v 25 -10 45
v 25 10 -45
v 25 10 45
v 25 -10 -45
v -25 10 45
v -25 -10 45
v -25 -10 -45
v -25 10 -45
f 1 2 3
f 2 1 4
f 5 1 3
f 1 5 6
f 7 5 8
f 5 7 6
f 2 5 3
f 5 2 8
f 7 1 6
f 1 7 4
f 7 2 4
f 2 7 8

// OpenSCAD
// Define the dimensions of the rectangular block
block_length = 50;  // Length of the block
block_width = 20;   // Width of the block
block_height = 15;  // Height of the block (increased to match original model)

// Function to create a rectangular block
module rectangular_block() {
    cube([block_length, block_width, block_height], center = true);
}

// Assemble the layers based on the original model
module assembly() {
    // Layer 1: Topmost block
    translate([0, 0, block_height * 2.5])
        rectangular_block();

    // Layer 2: Second block
    translate([0, 0, block_height * 1.5])
        rectangular_block();

    // Layer 3: Third block
    translate([0, 0, block_height * 0.5])
        rectangular_block();

    // Layer 4: Fourth block
    translate([0, 0, -block_height * 0.5])
        rectangular_block();

    // Layer 5: Fifth block
    translate([0, 0, -block_height * 1.5])
        rectangular_block();

    // Layer 6: Bottommost block
    translate([0, 0, -block_height * 2.5])
        rectangular_block();
}

// Render the assembly
assembly();
